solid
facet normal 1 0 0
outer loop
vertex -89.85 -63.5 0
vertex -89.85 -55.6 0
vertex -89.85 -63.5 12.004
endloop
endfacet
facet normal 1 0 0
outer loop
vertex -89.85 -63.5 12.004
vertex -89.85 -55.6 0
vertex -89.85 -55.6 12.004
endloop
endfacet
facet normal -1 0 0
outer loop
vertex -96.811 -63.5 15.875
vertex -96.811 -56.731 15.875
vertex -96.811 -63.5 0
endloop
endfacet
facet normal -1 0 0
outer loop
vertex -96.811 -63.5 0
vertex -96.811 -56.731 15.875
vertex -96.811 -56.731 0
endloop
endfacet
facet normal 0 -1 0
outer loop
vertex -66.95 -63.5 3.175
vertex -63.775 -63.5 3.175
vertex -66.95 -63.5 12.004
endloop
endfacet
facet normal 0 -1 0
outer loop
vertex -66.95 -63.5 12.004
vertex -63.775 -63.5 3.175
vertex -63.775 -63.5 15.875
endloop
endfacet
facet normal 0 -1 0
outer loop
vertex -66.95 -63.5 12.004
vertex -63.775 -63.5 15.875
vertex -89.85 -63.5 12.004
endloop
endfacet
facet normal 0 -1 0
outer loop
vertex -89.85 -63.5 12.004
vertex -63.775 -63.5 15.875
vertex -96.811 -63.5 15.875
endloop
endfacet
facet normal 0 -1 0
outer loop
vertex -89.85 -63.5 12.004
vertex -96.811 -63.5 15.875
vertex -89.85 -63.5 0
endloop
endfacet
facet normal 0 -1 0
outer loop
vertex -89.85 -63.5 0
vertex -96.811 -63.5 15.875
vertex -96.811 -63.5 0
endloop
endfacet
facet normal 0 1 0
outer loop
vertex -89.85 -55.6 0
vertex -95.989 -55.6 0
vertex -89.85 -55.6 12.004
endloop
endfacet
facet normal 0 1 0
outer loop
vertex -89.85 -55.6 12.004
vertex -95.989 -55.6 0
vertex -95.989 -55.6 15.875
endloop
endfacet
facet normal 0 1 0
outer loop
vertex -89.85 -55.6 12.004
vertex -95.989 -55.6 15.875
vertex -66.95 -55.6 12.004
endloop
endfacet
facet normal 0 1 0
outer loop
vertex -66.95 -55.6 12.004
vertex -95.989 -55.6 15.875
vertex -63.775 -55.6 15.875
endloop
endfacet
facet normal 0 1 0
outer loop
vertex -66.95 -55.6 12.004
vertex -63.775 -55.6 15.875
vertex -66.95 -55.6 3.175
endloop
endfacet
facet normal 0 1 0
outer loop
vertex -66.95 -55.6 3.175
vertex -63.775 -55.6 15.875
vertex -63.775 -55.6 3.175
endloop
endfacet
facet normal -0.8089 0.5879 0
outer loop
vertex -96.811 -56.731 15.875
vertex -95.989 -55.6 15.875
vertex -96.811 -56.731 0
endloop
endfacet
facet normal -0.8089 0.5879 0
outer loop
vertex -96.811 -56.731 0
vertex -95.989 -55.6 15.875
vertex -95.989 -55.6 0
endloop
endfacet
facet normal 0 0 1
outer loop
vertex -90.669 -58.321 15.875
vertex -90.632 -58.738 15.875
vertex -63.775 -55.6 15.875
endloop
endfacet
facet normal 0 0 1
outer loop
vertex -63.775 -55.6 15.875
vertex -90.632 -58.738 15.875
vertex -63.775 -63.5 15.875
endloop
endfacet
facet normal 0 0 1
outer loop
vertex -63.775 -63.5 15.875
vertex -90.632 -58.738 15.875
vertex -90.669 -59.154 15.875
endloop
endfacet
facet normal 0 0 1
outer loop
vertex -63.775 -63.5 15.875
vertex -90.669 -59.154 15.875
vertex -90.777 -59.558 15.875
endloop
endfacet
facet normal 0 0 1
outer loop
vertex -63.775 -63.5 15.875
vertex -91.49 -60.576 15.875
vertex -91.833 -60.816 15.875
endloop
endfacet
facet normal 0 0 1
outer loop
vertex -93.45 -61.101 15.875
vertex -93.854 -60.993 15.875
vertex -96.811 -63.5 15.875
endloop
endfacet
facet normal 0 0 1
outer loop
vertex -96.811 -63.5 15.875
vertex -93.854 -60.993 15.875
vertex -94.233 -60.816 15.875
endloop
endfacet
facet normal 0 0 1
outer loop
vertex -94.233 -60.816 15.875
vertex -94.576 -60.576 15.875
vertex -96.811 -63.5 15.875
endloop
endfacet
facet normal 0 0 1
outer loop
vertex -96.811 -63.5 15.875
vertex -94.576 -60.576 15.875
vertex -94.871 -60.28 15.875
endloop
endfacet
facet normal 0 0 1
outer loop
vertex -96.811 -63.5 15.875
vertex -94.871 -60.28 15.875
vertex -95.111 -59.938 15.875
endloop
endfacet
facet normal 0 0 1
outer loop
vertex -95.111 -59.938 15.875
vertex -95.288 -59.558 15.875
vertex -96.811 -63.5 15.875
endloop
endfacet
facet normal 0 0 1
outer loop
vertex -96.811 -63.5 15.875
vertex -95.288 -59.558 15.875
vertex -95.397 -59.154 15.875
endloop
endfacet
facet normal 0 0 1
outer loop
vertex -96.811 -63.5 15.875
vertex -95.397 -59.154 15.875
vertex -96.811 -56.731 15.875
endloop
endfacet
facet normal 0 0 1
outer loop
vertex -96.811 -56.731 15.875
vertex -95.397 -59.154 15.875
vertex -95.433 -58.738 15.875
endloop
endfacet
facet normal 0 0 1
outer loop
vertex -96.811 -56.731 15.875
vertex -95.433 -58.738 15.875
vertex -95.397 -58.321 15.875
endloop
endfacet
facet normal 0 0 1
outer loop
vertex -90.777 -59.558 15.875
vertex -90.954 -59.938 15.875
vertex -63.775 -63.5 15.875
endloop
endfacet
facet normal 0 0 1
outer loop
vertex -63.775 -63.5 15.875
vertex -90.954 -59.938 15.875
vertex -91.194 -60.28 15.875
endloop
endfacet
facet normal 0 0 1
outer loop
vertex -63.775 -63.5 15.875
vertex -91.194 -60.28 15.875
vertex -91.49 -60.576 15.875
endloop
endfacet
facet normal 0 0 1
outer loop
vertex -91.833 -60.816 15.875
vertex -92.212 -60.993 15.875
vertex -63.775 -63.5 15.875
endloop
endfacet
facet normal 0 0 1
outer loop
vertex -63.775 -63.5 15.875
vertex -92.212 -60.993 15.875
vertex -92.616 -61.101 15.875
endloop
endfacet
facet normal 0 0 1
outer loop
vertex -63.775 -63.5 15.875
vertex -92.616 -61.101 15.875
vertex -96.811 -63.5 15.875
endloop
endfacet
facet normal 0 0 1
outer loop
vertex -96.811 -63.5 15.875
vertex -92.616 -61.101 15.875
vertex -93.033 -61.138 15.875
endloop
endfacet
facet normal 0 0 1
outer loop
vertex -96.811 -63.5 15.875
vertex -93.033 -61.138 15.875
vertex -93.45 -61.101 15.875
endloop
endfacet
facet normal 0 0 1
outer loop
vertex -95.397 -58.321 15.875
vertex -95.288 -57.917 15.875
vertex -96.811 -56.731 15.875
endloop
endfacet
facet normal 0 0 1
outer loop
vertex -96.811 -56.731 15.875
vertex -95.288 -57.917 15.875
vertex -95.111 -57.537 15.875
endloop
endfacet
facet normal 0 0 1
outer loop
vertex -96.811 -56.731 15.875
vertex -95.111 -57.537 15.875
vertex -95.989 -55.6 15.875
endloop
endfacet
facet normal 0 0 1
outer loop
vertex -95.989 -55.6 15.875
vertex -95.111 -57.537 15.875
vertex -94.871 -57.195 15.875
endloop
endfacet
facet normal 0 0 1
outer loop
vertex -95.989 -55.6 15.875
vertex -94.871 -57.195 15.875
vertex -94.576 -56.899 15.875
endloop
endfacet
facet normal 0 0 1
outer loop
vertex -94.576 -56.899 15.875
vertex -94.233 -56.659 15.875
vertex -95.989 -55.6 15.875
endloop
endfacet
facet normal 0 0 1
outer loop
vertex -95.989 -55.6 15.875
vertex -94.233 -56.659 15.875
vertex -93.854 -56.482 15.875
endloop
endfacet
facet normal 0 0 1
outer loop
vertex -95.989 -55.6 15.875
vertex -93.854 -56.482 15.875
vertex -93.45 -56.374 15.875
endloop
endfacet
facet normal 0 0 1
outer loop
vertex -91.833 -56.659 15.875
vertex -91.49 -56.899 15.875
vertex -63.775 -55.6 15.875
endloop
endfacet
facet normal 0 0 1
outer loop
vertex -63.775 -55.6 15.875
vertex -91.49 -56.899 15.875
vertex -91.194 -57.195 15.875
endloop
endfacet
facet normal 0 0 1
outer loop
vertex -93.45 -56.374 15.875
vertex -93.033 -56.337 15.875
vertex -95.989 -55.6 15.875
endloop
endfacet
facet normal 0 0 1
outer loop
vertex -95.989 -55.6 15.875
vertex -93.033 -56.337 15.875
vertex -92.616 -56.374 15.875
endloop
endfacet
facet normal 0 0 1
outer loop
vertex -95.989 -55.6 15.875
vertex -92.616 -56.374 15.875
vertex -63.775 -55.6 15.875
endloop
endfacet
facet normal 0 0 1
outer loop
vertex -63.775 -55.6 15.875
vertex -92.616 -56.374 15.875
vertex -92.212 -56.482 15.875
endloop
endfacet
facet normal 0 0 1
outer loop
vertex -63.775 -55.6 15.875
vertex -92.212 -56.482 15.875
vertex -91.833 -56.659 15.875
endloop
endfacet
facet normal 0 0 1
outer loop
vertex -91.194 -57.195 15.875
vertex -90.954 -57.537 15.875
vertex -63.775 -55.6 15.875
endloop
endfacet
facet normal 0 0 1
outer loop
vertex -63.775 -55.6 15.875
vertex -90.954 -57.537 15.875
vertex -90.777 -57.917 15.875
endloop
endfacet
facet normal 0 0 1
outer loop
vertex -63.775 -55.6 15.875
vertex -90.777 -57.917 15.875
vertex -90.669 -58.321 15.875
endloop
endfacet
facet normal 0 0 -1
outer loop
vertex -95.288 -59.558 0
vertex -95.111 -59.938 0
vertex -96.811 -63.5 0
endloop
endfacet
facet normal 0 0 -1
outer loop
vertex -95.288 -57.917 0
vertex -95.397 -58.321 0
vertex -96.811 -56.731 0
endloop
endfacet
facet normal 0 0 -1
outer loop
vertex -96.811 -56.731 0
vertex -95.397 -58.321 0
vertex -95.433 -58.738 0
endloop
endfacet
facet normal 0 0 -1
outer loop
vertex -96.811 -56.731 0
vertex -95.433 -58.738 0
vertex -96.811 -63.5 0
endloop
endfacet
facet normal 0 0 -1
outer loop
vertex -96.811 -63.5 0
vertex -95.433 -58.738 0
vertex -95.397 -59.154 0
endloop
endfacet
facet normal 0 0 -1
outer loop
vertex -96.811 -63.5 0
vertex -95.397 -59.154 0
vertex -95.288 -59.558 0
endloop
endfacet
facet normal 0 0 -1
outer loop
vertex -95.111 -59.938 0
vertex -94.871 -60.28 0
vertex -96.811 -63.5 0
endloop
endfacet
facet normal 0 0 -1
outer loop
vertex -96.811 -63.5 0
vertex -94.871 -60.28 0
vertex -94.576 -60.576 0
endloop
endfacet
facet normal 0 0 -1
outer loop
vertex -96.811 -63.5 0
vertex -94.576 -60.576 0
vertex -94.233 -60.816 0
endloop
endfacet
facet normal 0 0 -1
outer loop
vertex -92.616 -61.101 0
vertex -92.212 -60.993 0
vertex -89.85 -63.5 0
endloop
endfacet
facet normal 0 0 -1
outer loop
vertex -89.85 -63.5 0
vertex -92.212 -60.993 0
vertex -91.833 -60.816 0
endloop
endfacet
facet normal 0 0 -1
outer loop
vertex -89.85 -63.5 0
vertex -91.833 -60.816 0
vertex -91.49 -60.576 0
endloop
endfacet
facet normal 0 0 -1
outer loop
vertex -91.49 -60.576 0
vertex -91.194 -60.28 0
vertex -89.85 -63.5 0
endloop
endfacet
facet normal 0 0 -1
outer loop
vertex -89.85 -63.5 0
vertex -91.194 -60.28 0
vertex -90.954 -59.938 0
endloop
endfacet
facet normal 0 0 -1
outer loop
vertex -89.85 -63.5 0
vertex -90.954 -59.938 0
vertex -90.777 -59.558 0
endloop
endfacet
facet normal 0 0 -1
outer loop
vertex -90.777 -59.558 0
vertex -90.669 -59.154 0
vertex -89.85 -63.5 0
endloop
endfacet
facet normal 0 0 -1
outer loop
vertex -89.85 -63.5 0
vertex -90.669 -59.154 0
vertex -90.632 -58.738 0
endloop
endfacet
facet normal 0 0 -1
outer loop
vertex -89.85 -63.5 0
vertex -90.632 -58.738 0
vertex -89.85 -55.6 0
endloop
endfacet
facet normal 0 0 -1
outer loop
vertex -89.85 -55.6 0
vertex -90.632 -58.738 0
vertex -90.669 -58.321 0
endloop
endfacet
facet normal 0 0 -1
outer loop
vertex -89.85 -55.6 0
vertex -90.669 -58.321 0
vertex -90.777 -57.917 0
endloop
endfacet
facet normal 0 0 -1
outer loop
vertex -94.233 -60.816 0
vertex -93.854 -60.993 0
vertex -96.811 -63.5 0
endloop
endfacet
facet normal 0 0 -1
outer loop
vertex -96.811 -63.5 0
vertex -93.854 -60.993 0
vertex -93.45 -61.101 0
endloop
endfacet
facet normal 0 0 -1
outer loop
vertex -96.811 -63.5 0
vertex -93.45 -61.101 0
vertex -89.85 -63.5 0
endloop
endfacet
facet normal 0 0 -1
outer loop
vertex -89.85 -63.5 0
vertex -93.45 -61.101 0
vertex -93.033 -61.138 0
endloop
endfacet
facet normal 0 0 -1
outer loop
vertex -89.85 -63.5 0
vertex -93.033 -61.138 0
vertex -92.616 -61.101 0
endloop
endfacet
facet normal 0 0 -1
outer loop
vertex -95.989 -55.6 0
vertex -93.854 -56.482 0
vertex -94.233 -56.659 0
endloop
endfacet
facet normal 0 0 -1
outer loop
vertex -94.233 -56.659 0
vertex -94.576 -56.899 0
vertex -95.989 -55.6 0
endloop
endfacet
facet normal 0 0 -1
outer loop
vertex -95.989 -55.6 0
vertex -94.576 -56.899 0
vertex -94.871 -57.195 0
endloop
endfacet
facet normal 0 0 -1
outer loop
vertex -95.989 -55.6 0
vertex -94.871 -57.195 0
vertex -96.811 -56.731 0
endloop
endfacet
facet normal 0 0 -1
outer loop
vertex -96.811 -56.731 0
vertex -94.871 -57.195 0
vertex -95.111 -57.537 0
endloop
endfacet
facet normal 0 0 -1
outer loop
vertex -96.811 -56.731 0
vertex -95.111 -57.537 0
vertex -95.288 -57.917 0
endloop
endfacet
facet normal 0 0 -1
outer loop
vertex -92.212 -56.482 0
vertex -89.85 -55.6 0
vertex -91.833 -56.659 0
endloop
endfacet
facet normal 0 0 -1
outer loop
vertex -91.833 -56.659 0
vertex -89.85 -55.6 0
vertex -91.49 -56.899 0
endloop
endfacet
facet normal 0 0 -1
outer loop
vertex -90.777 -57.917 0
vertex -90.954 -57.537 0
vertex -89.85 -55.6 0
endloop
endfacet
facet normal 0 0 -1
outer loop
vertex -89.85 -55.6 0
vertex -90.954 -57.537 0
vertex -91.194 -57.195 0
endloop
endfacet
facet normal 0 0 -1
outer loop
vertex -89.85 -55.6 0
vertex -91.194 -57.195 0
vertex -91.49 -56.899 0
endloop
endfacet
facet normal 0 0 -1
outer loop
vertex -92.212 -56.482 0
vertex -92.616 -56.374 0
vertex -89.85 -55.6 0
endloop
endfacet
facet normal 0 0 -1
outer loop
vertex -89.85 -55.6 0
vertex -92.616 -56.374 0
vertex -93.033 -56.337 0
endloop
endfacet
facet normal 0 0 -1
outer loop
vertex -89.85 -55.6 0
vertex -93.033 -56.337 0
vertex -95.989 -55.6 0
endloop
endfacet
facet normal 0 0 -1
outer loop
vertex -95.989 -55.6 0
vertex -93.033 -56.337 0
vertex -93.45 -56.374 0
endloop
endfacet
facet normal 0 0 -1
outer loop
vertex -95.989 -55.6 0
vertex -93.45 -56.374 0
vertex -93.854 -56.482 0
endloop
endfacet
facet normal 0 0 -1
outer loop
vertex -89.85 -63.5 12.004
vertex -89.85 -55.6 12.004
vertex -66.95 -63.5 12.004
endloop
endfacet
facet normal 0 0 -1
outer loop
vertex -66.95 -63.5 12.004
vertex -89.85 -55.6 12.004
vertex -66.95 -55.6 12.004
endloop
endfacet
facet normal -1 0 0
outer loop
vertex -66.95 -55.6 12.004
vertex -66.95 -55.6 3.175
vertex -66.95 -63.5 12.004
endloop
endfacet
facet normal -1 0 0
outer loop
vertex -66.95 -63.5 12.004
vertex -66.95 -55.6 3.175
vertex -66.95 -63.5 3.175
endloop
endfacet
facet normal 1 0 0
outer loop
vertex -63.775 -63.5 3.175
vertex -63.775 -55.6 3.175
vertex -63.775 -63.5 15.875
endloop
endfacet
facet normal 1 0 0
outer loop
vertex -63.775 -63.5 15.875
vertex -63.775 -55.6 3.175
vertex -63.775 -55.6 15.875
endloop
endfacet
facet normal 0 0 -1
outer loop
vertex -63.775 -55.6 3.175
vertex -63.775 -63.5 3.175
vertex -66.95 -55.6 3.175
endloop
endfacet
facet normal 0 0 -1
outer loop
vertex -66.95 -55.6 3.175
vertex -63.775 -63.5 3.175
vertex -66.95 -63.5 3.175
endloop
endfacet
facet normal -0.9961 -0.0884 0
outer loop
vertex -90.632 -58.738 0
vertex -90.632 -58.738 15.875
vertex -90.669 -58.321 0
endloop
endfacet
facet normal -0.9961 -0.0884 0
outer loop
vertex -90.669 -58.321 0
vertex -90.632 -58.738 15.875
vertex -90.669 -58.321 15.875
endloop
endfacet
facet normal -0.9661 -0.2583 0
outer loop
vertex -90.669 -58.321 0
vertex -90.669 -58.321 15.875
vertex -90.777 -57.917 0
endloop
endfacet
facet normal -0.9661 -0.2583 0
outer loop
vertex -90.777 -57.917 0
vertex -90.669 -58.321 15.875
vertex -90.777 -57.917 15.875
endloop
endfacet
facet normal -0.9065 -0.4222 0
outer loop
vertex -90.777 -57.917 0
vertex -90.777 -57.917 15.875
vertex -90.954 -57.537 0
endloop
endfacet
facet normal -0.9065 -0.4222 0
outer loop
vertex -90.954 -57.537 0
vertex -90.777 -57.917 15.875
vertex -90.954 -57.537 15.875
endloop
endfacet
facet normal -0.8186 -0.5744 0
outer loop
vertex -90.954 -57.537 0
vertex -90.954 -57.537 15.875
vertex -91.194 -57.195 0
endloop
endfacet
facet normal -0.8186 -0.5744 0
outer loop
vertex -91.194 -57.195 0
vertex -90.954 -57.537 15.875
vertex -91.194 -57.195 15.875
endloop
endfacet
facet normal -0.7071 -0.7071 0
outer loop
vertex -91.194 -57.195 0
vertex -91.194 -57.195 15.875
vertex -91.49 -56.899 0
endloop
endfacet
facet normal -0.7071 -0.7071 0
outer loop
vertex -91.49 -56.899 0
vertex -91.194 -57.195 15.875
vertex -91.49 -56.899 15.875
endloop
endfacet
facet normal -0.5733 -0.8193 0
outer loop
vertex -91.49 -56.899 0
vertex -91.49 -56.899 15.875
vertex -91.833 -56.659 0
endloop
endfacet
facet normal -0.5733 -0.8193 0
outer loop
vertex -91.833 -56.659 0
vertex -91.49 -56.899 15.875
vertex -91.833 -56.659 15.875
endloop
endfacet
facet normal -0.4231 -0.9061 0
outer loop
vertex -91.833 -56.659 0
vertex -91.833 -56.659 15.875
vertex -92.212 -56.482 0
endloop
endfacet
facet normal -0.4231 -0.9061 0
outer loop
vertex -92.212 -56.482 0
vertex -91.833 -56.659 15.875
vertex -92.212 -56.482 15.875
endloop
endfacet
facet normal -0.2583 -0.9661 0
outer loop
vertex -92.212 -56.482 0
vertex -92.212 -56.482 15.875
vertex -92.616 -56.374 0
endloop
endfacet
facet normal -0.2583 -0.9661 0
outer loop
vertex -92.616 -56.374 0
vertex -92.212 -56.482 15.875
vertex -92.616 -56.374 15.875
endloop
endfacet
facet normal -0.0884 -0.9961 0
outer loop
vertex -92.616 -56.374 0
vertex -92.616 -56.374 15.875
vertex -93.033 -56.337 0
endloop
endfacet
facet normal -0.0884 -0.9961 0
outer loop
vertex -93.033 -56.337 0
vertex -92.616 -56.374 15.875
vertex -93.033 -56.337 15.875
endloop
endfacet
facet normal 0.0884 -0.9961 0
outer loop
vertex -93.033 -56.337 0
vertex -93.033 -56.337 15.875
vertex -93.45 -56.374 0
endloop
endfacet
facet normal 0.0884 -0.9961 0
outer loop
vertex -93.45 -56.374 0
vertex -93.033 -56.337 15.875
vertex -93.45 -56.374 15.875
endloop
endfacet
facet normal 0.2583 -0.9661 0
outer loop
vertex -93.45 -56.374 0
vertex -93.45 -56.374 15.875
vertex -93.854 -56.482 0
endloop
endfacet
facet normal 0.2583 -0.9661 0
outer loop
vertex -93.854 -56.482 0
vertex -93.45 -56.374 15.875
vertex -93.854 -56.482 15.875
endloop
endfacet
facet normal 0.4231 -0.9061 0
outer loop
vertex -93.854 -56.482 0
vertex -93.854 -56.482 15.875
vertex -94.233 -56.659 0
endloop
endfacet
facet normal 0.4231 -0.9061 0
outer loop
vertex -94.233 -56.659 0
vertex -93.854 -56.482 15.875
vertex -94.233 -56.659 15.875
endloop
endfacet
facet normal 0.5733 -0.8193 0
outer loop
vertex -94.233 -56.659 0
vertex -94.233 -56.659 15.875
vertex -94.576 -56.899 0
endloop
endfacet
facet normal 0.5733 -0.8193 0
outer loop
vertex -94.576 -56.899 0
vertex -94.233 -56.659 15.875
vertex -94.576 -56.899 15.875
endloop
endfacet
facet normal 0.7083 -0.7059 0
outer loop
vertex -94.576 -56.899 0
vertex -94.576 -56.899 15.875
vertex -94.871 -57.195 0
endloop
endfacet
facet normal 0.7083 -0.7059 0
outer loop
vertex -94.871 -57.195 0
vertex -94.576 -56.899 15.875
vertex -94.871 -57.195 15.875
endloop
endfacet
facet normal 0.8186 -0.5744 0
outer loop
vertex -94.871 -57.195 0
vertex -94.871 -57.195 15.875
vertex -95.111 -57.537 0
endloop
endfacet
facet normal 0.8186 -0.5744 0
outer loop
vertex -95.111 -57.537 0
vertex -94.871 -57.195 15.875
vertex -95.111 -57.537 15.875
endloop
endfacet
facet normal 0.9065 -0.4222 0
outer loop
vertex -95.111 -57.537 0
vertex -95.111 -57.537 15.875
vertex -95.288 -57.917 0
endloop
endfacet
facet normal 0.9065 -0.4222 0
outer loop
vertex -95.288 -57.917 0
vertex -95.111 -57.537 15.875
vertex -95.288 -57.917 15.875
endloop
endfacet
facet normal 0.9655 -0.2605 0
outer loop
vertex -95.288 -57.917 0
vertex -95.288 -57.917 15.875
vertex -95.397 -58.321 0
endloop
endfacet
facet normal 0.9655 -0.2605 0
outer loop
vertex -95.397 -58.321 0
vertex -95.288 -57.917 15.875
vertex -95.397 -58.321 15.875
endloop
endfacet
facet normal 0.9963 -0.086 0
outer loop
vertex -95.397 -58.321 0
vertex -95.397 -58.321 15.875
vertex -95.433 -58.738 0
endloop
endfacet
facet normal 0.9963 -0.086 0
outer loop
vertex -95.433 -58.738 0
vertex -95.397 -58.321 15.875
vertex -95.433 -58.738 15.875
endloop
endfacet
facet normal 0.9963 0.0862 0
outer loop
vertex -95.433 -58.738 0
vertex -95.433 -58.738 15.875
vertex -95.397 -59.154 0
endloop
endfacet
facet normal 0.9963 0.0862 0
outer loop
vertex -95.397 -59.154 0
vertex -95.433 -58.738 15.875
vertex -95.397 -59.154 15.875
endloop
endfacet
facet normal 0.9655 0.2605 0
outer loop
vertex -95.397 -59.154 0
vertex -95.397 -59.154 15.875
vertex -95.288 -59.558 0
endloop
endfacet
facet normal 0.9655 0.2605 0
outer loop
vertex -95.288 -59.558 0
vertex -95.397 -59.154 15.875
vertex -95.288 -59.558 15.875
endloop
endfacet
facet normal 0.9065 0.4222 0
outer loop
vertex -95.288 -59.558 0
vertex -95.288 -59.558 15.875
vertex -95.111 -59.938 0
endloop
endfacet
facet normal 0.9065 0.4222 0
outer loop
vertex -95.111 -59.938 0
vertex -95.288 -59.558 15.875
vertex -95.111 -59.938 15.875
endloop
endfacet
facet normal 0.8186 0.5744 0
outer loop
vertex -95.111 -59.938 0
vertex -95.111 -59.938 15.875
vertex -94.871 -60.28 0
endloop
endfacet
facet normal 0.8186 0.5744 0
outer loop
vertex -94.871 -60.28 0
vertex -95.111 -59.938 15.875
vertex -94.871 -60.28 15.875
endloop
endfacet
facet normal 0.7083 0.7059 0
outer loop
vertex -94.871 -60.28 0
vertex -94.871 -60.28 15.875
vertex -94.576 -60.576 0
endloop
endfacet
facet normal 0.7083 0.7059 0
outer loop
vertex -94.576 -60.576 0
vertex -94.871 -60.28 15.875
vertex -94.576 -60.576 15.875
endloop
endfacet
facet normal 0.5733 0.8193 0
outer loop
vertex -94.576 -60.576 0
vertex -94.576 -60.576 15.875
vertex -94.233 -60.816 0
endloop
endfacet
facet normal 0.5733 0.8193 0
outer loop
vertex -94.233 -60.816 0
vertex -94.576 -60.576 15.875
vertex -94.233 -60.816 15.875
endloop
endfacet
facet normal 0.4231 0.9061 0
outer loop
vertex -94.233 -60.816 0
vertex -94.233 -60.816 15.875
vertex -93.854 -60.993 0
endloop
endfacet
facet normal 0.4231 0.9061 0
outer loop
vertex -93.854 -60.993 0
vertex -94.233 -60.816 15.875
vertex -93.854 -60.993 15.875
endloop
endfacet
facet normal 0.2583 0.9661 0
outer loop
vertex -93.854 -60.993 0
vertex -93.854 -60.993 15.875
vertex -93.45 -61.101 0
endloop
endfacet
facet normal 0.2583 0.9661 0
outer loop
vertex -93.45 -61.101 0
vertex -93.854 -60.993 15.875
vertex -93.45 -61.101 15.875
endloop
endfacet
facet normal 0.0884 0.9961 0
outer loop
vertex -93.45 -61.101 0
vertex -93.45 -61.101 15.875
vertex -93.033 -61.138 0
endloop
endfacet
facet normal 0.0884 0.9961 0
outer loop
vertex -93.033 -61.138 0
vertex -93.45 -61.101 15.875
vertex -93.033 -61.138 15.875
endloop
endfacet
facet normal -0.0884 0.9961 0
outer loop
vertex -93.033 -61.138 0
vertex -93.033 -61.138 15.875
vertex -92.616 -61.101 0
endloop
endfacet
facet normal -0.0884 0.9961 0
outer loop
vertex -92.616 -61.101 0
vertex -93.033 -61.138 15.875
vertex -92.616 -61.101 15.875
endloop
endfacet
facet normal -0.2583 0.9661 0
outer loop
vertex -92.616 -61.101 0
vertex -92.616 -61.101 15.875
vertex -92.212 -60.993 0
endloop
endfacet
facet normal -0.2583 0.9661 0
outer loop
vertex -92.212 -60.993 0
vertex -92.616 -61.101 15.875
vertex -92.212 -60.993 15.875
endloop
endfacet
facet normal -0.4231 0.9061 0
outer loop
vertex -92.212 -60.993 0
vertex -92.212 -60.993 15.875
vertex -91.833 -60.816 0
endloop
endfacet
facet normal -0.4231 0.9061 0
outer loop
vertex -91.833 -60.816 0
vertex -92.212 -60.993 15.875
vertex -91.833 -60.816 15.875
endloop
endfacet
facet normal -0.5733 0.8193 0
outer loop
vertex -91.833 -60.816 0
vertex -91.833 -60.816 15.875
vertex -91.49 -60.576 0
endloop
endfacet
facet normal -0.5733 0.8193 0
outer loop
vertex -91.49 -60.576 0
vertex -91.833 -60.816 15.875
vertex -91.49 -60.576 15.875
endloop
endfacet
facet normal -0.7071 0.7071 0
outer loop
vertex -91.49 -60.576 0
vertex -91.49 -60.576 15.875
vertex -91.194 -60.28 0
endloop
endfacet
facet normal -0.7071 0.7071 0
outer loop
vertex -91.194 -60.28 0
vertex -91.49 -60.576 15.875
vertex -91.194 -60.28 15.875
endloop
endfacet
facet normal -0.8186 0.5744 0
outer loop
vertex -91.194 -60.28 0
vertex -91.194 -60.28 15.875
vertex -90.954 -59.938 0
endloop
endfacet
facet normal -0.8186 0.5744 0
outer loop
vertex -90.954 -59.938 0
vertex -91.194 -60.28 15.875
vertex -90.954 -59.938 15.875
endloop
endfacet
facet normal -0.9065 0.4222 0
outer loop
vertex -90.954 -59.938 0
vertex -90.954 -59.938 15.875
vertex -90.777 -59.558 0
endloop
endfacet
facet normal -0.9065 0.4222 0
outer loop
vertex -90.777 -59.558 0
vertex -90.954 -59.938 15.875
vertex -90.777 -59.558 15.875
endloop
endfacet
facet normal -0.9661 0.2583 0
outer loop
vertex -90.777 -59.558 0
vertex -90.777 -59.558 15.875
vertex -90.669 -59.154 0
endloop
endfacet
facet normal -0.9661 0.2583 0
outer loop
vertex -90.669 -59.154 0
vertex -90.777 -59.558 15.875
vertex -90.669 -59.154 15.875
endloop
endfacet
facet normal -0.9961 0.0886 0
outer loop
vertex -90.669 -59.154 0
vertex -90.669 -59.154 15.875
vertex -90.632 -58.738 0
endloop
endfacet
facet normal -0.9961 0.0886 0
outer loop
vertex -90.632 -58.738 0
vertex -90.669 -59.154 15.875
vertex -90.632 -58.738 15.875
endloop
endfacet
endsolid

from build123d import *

# Parameters (mm, degrees)
BOSS_EXTRUDE1_DEPTH = 15.875
SKETCH2_W           = 3.87077
SKETCH2_H           = 7.9
BOSS_EXTRUDE2_DEPTH = 22.9
SKETCH3_W           = 3.175
SKETCH3_H           = 7.9
BOSS_EXTRUDE3_DEPTH = 12.7
SKETCH4_R           = 2.4003
CUT_EXTRUDE1_DEPTH  = 16.875


with BuildPart() as part:
    # Sketch1 → Boss-Extrude1 (new body)
    with BuildSketch(Plane.XY):
        Polygon((-96.811237268, -63.5), (-89.85, -63.5), (-89.85, -55.6), (-95.988636364, -55.6), (-96.811237268, -56.731076243), align=None)
    extrude(amount=BOSS_EXTRUDE1_DEPTH)

    # Sketch2 → Boss-Extrude2 (add)
    with BuildSketch(Plane(origin=(-89.85, 0, 0), x_dir=(0, 0, -1), z_dir=(1, 0, 0))):
        with Locations((-13.939615, -59.55)):
            Rectangle(SKETCH2_W, SKETCH2_H)
    extrude(amount=BOSS_EXTRUDE2_DEPTH)

    # Sketch3 → Boss-Extrude3 (add)
    with BuildSketch(Plane.XY.offset(15.875)):
        with Locations((-65.3625, -59.55)):
            Rectangle(SKETCH3_W, SKETCH3_H)
    extrude(amount=-BOSS_EXTRUDE3_DEPTH)

    # Sketch4 → Cut-Extrude1 (cut, through all)
    with BuildSketch(Plane.XY.offset(15.875)):
        with Locations((-93.032751555, -58.7375)):
            Circle(SKETCH4_R)
    extrude(amount=-CUT_EXTRUDE1_DEPTH, mode=Mode.SUBTRACT)


solid = part.part
